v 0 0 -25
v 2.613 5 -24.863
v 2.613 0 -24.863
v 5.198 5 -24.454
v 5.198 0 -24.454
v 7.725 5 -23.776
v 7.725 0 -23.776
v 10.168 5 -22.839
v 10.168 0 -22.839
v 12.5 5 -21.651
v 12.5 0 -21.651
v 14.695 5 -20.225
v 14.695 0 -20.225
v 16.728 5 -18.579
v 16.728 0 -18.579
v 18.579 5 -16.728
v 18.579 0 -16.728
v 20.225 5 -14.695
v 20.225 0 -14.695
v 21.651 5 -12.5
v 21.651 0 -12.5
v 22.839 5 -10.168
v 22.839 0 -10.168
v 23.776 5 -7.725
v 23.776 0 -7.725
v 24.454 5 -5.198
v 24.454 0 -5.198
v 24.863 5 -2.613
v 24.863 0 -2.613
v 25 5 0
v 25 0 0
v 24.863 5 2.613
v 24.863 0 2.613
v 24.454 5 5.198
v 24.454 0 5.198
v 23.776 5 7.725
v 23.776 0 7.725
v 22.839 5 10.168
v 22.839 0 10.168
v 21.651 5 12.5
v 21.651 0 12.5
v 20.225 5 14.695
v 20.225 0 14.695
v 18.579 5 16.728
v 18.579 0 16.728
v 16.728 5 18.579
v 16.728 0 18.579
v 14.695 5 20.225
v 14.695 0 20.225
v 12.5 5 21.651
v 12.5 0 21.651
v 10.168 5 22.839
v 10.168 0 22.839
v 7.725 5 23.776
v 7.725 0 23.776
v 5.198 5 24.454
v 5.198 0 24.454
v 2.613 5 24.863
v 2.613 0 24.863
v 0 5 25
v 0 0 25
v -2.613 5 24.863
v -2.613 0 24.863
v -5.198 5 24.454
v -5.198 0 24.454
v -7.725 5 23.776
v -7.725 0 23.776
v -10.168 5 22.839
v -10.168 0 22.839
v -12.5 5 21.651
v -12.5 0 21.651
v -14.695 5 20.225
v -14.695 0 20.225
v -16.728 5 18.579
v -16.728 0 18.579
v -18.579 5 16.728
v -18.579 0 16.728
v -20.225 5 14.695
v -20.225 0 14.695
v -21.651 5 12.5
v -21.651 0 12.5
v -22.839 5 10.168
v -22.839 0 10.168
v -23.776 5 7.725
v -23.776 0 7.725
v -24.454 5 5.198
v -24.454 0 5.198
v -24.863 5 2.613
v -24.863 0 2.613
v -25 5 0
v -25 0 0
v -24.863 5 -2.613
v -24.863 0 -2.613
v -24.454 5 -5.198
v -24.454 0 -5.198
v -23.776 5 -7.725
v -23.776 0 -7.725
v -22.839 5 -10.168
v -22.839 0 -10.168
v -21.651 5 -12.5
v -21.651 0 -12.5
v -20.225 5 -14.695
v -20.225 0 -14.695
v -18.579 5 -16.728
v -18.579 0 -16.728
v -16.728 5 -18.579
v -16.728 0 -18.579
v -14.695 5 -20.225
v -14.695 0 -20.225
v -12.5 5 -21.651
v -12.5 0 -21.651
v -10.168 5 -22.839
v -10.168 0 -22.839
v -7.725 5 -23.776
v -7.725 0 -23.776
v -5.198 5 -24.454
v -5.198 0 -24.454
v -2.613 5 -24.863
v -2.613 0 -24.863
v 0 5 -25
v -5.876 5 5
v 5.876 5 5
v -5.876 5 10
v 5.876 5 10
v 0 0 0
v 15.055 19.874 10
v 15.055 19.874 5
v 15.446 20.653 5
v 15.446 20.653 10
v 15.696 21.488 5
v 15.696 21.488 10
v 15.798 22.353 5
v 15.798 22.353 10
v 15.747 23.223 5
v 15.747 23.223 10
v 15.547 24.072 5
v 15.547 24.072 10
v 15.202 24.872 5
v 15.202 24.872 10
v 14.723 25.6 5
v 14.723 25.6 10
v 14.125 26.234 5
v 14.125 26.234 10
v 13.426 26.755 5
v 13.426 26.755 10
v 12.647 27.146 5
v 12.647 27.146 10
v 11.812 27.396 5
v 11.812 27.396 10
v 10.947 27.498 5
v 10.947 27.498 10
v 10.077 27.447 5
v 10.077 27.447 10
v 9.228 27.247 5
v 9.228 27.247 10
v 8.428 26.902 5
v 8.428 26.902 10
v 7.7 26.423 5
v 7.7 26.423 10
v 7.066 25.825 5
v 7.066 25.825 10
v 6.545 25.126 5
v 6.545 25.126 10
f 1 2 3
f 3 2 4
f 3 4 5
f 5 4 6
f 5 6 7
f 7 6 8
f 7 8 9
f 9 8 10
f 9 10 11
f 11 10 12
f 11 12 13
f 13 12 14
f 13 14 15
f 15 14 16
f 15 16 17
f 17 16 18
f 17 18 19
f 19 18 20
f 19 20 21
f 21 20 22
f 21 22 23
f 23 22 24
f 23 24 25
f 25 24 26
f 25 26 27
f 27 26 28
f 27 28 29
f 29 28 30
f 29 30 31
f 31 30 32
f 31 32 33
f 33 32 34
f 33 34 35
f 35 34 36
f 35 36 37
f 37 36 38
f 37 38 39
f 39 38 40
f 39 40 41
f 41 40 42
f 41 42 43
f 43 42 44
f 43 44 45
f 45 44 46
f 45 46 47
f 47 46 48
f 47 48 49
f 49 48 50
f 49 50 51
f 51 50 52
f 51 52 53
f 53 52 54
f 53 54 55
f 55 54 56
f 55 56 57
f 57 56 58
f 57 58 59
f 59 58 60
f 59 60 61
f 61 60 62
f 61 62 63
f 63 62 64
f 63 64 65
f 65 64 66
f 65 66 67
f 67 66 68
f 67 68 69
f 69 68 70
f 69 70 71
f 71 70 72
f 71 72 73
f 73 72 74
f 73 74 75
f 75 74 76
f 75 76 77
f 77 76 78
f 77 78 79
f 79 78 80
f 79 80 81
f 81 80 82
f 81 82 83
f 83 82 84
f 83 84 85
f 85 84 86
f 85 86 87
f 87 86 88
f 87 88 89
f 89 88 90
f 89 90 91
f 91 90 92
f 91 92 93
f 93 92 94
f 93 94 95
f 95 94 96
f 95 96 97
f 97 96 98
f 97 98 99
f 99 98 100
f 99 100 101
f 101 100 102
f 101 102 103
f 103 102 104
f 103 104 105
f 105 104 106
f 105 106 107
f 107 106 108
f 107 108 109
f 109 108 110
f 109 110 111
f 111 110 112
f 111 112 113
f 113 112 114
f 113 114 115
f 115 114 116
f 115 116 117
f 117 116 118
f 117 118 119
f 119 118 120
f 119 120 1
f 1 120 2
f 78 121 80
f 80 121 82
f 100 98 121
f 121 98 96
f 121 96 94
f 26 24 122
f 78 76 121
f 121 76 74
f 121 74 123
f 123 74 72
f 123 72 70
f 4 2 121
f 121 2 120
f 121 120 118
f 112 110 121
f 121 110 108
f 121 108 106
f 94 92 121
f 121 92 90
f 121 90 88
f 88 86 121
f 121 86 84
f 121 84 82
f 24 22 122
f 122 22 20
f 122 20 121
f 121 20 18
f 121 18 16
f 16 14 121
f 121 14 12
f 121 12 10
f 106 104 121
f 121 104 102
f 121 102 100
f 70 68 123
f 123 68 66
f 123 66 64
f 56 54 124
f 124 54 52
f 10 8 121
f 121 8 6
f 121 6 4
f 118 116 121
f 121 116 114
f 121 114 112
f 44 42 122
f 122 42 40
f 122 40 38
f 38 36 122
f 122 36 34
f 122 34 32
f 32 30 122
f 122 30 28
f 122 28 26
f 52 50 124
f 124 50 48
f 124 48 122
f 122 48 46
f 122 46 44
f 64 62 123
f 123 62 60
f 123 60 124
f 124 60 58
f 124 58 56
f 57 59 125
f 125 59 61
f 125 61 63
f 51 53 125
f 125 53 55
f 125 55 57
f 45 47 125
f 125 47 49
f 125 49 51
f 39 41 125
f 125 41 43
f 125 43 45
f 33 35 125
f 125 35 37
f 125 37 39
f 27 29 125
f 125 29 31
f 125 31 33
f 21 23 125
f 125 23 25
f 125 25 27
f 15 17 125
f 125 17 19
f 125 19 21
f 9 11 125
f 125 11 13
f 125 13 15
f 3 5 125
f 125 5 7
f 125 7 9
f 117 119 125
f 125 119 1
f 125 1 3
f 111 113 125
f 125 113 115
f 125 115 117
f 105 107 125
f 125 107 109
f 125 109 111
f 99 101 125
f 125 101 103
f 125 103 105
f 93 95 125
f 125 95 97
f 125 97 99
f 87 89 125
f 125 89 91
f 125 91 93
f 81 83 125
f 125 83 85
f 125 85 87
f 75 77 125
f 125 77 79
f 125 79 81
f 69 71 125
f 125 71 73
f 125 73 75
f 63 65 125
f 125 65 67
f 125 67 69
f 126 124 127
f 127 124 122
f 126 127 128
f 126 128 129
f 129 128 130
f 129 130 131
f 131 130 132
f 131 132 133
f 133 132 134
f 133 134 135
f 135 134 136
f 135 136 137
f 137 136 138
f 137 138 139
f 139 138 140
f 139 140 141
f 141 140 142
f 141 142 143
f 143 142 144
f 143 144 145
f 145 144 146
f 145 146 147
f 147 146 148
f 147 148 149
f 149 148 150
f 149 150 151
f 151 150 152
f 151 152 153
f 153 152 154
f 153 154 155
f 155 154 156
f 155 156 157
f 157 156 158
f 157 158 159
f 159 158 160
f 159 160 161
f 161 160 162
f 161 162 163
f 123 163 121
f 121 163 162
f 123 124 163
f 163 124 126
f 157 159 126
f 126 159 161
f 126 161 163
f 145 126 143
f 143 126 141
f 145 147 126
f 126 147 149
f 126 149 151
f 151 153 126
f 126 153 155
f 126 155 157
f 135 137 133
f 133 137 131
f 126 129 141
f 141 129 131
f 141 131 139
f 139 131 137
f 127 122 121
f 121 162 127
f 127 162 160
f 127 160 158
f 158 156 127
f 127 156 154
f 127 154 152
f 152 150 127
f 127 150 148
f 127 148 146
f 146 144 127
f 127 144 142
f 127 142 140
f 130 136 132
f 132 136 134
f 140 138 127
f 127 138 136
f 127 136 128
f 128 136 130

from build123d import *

# Parameters (mm, degrees)
SKETCH_1_R      = 25
EXTRUDE_1_DEPTH = 5
EXTRUDE_2_DEPTH = 5


with BuildPart() as part:
    # 草图1 → 凸台-拉伸1 (new body)
    with BuildSketch(Plane(origin=(0, 0, 0), x_dir=(1, 0, 0), z_dir=(0, 1, 0))):
        with Locations(Location((0, 0, 0), (0, 0, 270))):
            Circle(SKETCH_1_R)
    extrude(amount=EXTRUDE_1_DEPTH)

    # 草图2 → 凸台-拉伸2 (add)
    with BuildSketch(Plane.XY.offset(5)):
        with BuildLine():
            Line((5.875511267, 5), (15.054948865, 19.8740887))
            ThreePointArc((15.054948865, 19.8740887), (13.4259113, 26.754948865), (6.545051135, 25.1259113))
            Line((6.545051135, 25.1259113), (-5.875511267, 5))
            Line((-5.875511267, 5), (5.875511267, 5))
        make_face()
    extrude(amount=EXTRUDE_2_DEPTH)


solid = part.part
